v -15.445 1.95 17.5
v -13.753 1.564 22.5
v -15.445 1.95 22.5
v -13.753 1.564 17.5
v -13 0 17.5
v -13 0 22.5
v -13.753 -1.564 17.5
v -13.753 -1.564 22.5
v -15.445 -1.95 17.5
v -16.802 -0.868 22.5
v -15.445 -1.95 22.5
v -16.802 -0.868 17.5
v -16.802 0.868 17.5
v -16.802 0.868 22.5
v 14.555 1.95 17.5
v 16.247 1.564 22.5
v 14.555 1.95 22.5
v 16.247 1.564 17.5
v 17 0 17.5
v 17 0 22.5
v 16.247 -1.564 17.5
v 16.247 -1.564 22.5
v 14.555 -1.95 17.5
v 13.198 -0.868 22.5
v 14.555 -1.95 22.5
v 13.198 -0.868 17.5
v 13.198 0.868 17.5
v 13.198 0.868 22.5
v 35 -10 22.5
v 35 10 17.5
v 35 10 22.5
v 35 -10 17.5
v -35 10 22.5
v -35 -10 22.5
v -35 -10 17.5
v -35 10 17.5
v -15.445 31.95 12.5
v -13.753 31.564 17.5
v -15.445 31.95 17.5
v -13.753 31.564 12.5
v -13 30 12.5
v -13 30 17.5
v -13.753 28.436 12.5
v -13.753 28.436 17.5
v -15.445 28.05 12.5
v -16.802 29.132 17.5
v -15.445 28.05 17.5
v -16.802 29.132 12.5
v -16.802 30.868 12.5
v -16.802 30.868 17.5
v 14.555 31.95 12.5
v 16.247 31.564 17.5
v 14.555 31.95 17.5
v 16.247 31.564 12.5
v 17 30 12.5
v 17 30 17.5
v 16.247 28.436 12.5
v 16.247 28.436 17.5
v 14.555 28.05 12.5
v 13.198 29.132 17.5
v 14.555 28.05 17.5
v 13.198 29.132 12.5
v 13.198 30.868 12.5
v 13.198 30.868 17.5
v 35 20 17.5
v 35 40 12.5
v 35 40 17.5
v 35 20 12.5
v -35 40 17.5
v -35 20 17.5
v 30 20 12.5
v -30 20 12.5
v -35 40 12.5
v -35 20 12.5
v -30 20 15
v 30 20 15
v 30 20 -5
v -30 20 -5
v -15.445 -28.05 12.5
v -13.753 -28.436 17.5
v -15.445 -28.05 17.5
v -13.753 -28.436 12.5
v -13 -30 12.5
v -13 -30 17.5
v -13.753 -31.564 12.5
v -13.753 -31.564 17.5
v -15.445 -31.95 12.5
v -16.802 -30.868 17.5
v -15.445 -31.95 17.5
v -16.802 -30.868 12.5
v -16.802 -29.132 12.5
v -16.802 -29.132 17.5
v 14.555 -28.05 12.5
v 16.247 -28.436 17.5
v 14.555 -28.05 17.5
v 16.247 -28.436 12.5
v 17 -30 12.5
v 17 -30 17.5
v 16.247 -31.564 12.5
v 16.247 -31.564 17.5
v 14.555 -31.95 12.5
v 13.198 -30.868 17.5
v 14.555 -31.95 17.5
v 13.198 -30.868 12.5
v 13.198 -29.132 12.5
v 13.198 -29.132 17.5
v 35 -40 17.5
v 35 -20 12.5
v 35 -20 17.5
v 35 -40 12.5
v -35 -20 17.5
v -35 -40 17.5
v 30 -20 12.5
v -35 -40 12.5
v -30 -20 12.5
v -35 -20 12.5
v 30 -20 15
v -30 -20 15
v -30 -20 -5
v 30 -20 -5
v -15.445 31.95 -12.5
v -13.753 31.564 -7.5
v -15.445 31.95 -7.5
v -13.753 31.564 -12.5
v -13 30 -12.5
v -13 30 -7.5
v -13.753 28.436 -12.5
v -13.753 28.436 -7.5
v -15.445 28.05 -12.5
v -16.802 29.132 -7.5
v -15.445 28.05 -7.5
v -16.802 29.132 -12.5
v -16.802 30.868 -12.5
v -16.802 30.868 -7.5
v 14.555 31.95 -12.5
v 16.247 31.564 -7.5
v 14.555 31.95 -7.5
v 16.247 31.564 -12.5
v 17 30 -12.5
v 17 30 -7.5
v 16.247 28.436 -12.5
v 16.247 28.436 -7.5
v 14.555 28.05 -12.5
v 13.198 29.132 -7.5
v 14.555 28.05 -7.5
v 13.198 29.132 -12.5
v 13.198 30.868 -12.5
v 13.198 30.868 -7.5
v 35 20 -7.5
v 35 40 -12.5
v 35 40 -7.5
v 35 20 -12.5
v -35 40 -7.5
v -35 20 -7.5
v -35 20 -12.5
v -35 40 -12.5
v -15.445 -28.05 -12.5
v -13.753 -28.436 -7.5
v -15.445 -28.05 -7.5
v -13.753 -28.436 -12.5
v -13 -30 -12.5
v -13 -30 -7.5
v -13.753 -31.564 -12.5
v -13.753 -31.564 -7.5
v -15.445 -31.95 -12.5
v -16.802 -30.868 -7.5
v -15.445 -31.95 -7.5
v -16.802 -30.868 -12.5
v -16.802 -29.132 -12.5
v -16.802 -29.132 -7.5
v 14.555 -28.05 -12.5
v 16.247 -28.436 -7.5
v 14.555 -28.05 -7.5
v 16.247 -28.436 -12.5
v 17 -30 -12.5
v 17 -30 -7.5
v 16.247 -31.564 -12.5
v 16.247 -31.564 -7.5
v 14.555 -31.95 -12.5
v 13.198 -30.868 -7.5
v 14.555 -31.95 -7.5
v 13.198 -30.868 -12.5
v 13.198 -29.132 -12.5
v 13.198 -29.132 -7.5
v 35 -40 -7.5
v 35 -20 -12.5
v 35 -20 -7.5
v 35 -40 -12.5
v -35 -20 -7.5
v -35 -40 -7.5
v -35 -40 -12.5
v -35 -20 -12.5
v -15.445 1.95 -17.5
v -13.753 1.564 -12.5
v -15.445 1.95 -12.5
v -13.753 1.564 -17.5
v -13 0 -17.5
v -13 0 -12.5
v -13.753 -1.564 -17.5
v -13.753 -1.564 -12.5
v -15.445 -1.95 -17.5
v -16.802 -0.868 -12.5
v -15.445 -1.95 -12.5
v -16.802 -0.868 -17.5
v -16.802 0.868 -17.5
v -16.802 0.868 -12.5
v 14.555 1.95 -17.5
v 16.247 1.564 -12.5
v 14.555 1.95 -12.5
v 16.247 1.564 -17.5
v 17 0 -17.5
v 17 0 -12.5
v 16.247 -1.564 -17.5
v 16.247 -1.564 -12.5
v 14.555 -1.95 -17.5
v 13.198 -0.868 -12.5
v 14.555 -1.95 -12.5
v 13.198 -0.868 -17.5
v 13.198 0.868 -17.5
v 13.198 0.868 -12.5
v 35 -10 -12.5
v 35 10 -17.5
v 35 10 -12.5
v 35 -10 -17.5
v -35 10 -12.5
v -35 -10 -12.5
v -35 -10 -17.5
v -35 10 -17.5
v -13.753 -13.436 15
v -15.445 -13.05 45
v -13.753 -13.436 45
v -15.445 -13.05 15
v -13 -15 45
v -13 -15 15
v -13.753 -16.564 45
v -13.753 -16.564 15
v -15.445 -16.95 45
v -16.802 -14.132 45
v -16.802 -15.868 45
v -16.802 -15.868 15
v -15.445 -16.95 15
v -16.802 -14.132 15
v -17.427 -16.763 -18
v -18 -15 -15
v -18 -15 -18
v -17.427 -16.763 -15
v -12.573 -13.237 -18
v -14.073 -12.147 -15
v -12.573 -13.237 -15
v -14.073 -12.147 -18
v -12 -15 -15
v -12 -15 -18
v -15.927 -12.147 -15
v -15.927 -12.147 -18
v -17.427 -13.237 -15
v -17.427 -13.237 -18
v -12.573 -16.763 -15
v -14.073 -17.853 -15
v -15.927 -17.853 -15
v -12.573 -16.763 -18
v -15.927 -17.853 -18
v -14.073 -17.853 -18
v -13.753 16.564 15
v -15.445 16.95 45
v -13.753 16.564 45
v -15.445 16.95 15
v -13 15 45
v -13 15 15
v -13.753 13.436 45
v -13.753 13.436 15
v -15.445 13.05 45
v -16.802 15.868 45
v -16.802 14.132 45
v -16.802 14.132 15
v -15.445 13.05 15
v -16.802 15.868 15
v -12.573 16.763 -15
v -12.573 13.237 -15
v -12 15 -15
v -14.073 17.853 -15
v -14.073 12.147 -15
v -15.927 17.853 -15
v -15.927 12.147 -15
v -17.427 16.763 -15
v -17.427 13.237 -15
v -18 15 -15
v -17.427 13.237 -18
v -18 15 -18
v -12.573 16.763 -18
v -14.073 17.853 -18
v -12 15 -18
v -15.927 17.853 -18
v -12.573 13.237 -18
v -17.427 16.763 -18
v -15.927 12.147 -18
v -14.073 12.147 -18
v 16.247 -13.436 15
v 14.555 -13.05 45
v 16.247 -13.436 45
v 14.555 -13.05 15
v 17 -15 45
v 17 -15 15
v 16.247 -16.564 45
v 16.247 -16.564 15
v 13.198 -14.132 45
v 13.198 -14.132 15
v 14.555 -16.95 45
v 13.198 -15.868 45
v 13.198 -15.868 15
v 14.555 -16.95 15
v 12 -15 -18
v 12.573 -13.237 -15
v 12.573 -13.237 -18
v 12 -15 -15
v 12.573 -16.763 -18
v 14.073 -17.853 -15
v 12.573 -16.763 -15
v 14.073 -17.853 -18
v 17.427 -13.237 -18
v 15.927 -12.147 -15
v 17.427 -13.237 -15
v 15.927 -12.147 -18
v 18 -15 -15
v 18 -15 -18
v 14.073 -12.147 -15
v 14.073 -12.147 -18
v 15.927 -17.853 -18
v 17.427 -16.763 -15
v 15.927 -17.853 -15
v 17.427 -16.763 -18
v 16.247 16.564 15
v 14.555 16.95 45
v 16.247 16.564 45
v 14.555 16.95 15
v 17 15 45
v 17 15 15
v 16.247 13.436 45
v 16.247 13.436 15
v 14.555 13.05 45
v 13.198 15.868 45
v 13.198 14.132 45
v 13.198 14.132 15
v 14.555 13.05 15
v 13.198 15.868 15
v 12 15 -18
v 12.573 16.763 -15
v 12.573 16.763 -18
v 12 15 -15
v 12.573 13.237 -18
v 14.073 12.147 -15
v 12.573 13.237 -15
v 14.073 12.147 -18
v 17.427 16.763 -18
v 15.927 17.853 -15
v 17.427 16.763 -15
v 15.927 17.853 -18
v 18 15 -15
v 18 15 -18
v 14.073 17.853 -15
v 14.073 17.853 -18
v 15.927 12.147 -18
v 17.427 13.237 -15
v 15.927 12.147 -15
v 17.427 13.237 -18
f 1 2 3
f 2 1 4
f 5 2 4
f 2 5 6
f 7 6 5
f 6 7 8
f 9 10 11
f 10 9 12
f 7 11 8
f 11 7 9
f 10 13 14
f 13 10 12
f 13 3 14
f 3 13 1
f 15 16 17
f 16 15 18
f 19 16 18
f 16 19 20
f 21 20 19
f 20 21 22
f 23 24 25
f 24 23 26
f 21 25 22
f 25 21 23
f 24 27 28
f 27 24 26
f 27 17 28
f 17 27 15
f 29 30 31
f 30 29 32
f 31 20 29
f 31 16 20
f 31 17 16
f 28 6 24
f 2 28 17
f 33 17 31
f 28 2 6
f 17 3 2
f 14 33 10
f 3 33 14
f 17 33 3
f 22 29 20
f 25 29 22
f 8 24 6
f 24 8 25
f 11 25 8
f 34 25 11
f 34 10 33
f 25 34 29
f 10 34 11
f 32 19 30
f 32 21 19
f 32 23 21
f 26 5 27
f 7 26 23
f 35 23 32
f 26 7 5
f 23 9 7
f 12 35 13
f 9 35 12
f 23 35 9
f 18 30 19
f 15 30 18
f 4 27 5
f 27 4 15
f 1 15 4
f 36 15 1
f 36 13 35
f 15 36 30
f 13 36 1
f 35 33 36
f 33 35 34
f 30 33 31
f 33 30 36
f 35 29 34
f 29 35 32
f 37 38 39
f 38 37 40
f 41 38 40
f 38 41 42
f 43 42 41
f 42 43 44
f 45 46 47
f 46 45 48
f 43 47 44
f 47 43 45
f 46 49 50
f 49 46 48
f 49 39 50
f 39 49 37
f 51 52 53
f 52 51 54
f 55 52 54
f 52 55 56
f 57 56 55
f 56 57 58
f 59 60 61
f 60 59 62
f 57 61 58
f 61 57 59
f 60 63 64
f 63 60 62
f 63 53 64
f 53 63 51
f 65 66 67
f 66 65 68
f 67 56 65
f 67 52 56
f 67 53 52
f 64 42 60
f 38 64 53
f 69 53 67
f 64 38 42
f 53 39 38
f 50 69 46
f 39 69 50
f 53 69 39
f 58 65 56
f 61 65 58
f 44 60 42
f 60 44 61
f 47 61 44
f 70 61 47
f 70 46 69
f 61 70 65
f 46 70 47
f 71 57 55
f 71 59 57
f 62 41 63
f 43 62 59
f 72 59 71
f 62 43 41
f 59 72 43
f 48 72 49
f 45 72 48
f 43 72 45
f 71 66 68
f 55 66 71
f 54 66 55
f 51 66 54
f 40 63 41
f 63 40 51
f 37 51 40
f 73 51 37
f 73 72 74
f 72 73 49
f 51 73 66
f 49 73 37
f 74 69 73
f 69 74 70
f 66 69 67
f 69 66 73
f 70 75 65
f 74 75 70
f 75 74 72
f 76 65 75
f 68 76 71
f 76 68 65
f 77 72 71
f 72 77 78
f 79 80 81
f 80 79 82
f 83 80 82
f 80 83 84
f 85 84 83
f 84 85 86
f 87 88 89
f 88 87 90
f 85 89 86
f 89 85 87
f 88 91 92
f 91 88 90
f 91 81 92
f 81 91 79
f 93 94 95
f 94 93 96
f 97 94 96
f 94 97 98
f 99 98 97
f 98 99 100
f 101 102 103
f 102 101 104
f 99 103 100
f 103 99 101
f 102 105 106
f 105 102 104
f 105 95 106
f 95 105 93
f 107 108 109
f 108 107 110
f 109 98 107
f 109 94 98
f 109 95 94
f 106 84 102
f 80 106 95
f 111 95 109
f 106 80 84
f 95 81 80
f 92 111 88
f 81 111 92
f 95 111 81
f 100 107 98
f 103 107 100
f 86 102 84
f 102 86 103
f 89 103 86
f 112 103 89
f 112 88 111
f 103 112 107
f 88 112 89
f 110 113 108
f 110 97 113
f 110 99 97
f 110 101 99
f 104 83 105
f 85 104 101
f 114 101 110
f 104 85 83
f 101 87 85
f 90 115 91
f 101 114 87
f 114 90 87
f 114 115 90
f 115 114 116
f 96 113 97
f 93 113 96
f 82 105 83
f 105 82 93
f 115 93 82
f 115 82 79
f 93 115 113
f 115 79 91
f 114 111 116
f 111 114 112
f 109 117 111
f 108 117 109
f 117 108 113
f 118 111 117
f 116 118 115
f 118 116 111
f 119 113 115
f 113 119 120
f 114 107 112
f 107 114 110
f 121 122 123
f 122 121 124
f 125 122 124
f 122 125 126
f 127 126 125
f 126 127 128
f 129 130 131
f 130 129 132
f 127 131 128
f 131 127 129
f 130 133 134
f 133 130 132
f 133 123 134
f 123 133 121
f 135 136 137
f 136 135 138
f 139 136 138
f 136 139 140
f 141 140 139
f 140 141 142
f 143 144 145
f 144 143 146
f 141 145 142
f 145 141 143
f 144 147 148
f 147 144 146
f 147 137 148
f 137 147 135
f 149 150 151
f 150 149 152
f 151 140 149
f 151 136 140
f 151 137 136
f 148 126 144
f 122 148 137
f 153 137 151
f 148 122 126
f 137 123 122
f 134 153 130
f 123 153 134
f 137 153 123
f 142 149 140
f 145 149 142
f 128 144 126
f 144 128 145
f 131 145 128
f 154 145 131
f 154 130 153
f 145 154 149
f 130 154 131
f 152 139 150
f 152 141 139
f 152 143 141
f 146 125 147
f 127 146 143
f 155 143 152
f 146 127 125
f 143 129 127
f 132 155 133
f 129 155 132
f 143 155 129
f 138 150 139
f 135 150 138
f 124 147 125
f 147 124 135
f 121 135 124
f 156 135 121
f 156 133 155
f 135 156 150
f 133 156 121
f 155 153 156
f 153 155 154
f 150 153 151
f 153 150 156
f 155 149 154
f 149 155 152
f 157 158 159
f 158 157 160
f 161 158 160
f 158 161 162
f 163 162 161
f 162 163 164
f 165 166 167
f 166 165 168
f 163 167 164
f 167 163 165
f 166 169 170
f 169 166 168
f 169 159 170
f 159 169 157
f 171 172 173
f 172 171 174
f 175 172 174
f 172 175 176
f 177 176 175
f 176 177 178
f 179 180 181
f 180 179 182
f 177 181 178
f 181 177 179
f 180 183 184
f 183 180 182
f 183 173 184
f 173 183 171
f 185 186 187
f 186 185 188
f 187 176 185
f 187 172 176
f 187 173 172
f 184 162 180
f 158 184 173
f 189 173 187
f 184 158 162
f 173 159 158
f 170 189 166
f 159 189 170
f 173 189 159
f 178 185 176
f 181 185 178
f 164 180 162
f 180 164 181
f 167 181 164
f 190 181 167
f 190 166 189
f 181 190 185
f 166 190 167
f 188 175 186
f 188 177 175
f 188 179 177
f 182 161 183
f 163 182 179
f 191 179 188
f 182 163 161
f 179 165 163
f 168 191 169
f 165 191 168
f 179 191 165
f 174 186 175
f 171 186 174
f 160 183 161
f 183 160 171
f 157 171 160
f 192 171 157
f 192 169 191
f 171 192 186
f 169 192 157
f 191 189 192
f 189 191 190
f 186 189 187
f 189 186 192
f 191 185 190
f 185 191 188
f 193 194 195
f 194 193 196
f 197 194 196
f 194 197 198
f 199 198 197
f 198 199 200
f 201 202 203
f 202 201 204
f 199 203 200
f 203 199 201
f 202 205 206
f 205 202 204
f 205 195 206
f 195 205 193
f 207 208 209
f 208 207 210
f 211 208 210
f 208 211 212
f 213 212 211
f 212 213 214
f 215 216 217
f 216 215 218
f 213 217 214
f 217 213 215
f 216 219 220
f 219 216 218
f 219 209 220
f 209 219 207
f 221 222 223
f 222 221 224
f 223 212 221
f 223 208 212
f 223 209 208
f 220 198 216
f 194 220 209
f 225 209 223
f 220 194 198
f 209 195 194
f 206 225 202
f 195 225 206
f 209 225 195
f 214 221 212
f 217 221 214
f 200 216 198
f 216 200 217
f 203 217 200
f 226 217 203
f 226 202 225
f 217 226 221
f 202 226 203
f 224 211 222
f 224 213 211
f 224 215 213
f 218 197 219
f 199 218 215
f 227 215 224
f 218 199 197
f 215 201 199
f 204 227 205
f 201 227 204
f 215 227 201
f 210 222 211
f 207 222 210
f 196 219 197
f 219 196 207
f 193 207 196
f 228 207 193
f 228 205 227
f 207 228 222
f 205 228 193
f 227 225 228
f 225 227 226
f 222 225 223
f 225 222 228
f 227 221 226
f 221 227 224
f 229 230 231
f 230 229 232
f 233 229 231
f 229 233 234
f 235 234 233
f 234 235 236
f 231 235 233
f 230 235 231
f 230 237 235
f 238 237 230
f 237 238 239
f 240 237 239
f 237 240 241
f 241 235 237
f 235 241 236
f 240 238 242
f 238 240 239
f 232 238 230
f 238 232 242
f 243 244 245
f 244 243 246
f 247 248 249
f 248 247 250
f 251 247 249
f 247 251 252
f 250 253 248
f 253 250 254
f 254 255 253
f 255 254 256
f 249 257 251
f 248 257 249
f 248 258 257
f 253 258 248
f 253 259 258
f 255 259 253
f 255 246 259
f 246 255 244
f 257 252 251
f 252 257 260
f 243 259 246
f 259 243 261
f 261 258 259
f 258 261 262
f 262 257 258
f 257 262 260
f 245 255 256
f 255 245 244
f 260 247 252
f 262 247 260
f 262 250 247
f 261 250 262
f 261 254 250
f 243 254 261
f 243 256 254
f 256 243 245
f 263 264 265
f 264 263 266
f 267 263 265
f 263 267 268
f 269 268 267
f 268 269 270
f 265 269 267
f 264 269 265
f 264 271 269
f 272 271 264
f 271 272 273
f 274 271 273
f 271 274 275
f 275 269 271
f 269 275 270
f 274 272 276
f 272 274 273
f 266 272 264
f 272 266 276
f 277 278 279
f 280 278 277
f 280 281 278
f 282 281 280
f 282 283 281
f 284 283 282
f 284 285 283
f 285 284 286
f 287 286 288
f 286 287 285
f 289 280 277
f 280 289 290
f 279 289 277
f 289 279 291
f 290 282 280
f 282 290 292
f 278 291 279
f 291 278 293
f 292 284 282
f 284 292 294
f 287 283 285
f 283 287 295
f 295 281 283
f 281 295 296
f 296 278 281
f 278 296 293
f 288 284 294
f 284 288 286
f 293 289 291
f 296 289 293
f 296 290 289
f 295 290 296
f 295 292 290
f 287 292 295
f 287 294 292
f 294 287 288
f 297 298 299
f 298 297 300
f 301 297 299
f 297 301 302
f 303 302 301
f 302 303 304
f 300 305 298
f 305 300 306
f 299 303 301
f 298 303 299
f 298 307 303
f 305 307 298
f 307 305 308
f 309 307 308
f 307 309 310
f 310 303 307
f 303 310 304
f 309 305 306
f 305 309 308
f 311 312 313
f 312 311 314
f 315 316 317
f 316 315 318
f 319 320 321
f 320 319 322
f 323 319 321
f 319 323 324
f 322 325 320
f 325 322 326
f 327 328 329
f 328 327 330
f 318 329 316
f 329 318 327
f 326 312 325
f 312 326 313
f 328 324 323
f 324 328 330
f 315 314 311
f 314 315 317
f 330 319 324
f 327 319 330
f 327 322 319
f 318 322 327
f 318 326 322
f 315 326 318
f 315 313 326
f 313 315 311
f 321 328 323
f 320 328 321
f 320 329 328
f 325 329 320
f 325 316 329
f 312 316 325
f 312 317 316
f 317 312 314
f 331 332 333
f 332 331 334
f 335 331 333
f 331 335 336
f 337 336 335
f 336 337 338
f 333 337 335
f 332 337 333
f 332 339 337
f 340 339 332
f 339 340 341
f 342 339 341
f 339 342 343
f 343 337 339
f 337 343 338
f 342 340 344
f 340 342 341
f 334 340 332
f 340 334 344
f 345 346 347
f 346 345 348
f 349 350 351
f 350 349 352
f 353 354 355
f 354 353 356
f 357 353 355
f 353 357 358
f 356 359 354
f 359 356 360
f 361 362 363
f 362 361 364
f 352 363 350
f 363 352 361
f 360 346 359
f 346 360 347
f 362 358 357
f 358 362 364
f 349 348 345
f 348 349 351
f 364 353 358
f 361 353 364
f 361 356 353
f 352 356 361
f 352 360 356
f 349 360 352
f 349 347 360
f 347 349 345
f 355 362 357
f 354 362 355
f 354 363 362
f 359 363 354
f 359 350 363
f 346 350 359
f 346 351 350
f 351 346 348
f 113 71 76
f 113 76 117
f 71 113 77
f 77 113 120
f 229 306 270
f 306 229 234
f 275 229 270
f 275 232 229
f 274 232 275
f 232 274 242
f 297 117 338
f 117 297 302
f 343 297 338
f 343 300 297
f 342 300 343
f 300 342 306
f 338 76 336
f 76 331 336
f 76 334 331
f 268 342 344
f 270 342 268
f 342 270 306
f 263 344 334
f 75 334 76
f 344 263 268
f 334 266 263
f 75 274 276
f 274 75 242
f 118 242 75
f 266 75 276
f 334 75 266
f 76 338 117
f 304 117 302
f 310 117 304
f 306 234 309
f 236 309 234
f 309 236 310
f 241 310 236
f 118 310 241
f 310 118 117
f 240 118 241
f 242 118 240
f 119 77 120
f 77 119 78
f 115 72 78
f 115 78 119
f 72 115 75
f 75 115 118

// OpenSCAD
// Parameters
plate_thickness = 5; // Thickness of side and connecting plates
block_width = 40;    // Width of the central block
block_height = 20;   // Height of the central block
block_length = 60;   // Length of the central block
plate_length = 70;   // Adjusted length of side and connecting plates
plate_width = 20;    // Width of side and connecting plates
bolt_diameter = 4;   // Diameter of bolts
bolt_length = 40;    // Shortened length of bolts
nut_diameter = 6;    // Diameter of nuts
nut_thickness = 3;   // Thickness of nuts
hole_spacing = 30;   // Distance between bolt holes

// Central Block
module central_block() {
    cube([block_length, block_width, block_height], center = true); // Removed protrusions
}

// Side Plate
module side_plate() {
    difference() {
        cube([plate_length, plate_width, plate_thickness], center = true);
        for (x = [-hole_spacing/2, hole_spacing/2]) {
            translate([x, 0, 0])
                cylinder(r = bolt_diameter/2, h = plate_thickness + 2, center = true);
        }
    }
}

// Connecting Plate
module connecting_plate() {
    difference() {
        cube([plate_length, plate_width, plate_thickness], center = true);
        for (x = [-hole_spacing/2, hole_spacing/2]) {
            translate([x, 0, 0])
                cylinder(r = bolt_diameter/2, h = plate_thickness + 2, center = true);
        }
    }
}

// Bolt
module bolt() {
    cylinder(r = bolt_diameter/2, h = bolt_length, center = false); // Shortened bolt length
}

// Nut
module nut() {
    cylinder(r = nut_diameter/2, h = nut_thickness, center = false);
}

// Assembly
module assembly() {
    // Layer 1: Top Connecting Plate
    translate([0, 0, bolt_length/2])
        connecting_plate();

    // Layer 2: Top Side Plates
    translate([0, plate_width/2 + block_width/2, bolt_length/2 - plate_thickness])
        side_plate();
    translate([0, -plate_width/2 - block_width/2, bolt_length/2 - plate_thickness])
        side_plate();

    // Layer 3: Central Block
    translate([0, 0, bolt_length/2 - plate_thickness - block_height/2])
        central_block();

    // Layer 4: Bottom Side Plates
    translate([0, plate_width/2 + block_width/2, bolt_length/2 - plate_thickness - block_height - plate_thickness])
        side_plate();
    translate([0, -plate_width/2 - block_width/2, bolt_length/2 - plate_thickness - block_height - plate_thickness])
        side_plate();

    // Layer 5: Bottom Connecting Plate
    translate([0, 0, bolt_length/2 - plate_thickness - block_height - 2*plate_thickness])
        connecting_plate();

    // Fasteners: Bolts and Nuts
    for (x = [-hole_spacing/2, hole_spacing/2]) {
        for (y = [-block_width/2 + 5, block_width/2 - 5]) {
            translate([x, y, bolt_length/2 - plate_thickness - block_height/2])
                bolt();
            translate([x, y, bolt_length/2 - plate_thickness - block_height - 2*plate_thickness - nut_thickness])
                nut();
        }
    }
}

// Render the assembly
assembly();
